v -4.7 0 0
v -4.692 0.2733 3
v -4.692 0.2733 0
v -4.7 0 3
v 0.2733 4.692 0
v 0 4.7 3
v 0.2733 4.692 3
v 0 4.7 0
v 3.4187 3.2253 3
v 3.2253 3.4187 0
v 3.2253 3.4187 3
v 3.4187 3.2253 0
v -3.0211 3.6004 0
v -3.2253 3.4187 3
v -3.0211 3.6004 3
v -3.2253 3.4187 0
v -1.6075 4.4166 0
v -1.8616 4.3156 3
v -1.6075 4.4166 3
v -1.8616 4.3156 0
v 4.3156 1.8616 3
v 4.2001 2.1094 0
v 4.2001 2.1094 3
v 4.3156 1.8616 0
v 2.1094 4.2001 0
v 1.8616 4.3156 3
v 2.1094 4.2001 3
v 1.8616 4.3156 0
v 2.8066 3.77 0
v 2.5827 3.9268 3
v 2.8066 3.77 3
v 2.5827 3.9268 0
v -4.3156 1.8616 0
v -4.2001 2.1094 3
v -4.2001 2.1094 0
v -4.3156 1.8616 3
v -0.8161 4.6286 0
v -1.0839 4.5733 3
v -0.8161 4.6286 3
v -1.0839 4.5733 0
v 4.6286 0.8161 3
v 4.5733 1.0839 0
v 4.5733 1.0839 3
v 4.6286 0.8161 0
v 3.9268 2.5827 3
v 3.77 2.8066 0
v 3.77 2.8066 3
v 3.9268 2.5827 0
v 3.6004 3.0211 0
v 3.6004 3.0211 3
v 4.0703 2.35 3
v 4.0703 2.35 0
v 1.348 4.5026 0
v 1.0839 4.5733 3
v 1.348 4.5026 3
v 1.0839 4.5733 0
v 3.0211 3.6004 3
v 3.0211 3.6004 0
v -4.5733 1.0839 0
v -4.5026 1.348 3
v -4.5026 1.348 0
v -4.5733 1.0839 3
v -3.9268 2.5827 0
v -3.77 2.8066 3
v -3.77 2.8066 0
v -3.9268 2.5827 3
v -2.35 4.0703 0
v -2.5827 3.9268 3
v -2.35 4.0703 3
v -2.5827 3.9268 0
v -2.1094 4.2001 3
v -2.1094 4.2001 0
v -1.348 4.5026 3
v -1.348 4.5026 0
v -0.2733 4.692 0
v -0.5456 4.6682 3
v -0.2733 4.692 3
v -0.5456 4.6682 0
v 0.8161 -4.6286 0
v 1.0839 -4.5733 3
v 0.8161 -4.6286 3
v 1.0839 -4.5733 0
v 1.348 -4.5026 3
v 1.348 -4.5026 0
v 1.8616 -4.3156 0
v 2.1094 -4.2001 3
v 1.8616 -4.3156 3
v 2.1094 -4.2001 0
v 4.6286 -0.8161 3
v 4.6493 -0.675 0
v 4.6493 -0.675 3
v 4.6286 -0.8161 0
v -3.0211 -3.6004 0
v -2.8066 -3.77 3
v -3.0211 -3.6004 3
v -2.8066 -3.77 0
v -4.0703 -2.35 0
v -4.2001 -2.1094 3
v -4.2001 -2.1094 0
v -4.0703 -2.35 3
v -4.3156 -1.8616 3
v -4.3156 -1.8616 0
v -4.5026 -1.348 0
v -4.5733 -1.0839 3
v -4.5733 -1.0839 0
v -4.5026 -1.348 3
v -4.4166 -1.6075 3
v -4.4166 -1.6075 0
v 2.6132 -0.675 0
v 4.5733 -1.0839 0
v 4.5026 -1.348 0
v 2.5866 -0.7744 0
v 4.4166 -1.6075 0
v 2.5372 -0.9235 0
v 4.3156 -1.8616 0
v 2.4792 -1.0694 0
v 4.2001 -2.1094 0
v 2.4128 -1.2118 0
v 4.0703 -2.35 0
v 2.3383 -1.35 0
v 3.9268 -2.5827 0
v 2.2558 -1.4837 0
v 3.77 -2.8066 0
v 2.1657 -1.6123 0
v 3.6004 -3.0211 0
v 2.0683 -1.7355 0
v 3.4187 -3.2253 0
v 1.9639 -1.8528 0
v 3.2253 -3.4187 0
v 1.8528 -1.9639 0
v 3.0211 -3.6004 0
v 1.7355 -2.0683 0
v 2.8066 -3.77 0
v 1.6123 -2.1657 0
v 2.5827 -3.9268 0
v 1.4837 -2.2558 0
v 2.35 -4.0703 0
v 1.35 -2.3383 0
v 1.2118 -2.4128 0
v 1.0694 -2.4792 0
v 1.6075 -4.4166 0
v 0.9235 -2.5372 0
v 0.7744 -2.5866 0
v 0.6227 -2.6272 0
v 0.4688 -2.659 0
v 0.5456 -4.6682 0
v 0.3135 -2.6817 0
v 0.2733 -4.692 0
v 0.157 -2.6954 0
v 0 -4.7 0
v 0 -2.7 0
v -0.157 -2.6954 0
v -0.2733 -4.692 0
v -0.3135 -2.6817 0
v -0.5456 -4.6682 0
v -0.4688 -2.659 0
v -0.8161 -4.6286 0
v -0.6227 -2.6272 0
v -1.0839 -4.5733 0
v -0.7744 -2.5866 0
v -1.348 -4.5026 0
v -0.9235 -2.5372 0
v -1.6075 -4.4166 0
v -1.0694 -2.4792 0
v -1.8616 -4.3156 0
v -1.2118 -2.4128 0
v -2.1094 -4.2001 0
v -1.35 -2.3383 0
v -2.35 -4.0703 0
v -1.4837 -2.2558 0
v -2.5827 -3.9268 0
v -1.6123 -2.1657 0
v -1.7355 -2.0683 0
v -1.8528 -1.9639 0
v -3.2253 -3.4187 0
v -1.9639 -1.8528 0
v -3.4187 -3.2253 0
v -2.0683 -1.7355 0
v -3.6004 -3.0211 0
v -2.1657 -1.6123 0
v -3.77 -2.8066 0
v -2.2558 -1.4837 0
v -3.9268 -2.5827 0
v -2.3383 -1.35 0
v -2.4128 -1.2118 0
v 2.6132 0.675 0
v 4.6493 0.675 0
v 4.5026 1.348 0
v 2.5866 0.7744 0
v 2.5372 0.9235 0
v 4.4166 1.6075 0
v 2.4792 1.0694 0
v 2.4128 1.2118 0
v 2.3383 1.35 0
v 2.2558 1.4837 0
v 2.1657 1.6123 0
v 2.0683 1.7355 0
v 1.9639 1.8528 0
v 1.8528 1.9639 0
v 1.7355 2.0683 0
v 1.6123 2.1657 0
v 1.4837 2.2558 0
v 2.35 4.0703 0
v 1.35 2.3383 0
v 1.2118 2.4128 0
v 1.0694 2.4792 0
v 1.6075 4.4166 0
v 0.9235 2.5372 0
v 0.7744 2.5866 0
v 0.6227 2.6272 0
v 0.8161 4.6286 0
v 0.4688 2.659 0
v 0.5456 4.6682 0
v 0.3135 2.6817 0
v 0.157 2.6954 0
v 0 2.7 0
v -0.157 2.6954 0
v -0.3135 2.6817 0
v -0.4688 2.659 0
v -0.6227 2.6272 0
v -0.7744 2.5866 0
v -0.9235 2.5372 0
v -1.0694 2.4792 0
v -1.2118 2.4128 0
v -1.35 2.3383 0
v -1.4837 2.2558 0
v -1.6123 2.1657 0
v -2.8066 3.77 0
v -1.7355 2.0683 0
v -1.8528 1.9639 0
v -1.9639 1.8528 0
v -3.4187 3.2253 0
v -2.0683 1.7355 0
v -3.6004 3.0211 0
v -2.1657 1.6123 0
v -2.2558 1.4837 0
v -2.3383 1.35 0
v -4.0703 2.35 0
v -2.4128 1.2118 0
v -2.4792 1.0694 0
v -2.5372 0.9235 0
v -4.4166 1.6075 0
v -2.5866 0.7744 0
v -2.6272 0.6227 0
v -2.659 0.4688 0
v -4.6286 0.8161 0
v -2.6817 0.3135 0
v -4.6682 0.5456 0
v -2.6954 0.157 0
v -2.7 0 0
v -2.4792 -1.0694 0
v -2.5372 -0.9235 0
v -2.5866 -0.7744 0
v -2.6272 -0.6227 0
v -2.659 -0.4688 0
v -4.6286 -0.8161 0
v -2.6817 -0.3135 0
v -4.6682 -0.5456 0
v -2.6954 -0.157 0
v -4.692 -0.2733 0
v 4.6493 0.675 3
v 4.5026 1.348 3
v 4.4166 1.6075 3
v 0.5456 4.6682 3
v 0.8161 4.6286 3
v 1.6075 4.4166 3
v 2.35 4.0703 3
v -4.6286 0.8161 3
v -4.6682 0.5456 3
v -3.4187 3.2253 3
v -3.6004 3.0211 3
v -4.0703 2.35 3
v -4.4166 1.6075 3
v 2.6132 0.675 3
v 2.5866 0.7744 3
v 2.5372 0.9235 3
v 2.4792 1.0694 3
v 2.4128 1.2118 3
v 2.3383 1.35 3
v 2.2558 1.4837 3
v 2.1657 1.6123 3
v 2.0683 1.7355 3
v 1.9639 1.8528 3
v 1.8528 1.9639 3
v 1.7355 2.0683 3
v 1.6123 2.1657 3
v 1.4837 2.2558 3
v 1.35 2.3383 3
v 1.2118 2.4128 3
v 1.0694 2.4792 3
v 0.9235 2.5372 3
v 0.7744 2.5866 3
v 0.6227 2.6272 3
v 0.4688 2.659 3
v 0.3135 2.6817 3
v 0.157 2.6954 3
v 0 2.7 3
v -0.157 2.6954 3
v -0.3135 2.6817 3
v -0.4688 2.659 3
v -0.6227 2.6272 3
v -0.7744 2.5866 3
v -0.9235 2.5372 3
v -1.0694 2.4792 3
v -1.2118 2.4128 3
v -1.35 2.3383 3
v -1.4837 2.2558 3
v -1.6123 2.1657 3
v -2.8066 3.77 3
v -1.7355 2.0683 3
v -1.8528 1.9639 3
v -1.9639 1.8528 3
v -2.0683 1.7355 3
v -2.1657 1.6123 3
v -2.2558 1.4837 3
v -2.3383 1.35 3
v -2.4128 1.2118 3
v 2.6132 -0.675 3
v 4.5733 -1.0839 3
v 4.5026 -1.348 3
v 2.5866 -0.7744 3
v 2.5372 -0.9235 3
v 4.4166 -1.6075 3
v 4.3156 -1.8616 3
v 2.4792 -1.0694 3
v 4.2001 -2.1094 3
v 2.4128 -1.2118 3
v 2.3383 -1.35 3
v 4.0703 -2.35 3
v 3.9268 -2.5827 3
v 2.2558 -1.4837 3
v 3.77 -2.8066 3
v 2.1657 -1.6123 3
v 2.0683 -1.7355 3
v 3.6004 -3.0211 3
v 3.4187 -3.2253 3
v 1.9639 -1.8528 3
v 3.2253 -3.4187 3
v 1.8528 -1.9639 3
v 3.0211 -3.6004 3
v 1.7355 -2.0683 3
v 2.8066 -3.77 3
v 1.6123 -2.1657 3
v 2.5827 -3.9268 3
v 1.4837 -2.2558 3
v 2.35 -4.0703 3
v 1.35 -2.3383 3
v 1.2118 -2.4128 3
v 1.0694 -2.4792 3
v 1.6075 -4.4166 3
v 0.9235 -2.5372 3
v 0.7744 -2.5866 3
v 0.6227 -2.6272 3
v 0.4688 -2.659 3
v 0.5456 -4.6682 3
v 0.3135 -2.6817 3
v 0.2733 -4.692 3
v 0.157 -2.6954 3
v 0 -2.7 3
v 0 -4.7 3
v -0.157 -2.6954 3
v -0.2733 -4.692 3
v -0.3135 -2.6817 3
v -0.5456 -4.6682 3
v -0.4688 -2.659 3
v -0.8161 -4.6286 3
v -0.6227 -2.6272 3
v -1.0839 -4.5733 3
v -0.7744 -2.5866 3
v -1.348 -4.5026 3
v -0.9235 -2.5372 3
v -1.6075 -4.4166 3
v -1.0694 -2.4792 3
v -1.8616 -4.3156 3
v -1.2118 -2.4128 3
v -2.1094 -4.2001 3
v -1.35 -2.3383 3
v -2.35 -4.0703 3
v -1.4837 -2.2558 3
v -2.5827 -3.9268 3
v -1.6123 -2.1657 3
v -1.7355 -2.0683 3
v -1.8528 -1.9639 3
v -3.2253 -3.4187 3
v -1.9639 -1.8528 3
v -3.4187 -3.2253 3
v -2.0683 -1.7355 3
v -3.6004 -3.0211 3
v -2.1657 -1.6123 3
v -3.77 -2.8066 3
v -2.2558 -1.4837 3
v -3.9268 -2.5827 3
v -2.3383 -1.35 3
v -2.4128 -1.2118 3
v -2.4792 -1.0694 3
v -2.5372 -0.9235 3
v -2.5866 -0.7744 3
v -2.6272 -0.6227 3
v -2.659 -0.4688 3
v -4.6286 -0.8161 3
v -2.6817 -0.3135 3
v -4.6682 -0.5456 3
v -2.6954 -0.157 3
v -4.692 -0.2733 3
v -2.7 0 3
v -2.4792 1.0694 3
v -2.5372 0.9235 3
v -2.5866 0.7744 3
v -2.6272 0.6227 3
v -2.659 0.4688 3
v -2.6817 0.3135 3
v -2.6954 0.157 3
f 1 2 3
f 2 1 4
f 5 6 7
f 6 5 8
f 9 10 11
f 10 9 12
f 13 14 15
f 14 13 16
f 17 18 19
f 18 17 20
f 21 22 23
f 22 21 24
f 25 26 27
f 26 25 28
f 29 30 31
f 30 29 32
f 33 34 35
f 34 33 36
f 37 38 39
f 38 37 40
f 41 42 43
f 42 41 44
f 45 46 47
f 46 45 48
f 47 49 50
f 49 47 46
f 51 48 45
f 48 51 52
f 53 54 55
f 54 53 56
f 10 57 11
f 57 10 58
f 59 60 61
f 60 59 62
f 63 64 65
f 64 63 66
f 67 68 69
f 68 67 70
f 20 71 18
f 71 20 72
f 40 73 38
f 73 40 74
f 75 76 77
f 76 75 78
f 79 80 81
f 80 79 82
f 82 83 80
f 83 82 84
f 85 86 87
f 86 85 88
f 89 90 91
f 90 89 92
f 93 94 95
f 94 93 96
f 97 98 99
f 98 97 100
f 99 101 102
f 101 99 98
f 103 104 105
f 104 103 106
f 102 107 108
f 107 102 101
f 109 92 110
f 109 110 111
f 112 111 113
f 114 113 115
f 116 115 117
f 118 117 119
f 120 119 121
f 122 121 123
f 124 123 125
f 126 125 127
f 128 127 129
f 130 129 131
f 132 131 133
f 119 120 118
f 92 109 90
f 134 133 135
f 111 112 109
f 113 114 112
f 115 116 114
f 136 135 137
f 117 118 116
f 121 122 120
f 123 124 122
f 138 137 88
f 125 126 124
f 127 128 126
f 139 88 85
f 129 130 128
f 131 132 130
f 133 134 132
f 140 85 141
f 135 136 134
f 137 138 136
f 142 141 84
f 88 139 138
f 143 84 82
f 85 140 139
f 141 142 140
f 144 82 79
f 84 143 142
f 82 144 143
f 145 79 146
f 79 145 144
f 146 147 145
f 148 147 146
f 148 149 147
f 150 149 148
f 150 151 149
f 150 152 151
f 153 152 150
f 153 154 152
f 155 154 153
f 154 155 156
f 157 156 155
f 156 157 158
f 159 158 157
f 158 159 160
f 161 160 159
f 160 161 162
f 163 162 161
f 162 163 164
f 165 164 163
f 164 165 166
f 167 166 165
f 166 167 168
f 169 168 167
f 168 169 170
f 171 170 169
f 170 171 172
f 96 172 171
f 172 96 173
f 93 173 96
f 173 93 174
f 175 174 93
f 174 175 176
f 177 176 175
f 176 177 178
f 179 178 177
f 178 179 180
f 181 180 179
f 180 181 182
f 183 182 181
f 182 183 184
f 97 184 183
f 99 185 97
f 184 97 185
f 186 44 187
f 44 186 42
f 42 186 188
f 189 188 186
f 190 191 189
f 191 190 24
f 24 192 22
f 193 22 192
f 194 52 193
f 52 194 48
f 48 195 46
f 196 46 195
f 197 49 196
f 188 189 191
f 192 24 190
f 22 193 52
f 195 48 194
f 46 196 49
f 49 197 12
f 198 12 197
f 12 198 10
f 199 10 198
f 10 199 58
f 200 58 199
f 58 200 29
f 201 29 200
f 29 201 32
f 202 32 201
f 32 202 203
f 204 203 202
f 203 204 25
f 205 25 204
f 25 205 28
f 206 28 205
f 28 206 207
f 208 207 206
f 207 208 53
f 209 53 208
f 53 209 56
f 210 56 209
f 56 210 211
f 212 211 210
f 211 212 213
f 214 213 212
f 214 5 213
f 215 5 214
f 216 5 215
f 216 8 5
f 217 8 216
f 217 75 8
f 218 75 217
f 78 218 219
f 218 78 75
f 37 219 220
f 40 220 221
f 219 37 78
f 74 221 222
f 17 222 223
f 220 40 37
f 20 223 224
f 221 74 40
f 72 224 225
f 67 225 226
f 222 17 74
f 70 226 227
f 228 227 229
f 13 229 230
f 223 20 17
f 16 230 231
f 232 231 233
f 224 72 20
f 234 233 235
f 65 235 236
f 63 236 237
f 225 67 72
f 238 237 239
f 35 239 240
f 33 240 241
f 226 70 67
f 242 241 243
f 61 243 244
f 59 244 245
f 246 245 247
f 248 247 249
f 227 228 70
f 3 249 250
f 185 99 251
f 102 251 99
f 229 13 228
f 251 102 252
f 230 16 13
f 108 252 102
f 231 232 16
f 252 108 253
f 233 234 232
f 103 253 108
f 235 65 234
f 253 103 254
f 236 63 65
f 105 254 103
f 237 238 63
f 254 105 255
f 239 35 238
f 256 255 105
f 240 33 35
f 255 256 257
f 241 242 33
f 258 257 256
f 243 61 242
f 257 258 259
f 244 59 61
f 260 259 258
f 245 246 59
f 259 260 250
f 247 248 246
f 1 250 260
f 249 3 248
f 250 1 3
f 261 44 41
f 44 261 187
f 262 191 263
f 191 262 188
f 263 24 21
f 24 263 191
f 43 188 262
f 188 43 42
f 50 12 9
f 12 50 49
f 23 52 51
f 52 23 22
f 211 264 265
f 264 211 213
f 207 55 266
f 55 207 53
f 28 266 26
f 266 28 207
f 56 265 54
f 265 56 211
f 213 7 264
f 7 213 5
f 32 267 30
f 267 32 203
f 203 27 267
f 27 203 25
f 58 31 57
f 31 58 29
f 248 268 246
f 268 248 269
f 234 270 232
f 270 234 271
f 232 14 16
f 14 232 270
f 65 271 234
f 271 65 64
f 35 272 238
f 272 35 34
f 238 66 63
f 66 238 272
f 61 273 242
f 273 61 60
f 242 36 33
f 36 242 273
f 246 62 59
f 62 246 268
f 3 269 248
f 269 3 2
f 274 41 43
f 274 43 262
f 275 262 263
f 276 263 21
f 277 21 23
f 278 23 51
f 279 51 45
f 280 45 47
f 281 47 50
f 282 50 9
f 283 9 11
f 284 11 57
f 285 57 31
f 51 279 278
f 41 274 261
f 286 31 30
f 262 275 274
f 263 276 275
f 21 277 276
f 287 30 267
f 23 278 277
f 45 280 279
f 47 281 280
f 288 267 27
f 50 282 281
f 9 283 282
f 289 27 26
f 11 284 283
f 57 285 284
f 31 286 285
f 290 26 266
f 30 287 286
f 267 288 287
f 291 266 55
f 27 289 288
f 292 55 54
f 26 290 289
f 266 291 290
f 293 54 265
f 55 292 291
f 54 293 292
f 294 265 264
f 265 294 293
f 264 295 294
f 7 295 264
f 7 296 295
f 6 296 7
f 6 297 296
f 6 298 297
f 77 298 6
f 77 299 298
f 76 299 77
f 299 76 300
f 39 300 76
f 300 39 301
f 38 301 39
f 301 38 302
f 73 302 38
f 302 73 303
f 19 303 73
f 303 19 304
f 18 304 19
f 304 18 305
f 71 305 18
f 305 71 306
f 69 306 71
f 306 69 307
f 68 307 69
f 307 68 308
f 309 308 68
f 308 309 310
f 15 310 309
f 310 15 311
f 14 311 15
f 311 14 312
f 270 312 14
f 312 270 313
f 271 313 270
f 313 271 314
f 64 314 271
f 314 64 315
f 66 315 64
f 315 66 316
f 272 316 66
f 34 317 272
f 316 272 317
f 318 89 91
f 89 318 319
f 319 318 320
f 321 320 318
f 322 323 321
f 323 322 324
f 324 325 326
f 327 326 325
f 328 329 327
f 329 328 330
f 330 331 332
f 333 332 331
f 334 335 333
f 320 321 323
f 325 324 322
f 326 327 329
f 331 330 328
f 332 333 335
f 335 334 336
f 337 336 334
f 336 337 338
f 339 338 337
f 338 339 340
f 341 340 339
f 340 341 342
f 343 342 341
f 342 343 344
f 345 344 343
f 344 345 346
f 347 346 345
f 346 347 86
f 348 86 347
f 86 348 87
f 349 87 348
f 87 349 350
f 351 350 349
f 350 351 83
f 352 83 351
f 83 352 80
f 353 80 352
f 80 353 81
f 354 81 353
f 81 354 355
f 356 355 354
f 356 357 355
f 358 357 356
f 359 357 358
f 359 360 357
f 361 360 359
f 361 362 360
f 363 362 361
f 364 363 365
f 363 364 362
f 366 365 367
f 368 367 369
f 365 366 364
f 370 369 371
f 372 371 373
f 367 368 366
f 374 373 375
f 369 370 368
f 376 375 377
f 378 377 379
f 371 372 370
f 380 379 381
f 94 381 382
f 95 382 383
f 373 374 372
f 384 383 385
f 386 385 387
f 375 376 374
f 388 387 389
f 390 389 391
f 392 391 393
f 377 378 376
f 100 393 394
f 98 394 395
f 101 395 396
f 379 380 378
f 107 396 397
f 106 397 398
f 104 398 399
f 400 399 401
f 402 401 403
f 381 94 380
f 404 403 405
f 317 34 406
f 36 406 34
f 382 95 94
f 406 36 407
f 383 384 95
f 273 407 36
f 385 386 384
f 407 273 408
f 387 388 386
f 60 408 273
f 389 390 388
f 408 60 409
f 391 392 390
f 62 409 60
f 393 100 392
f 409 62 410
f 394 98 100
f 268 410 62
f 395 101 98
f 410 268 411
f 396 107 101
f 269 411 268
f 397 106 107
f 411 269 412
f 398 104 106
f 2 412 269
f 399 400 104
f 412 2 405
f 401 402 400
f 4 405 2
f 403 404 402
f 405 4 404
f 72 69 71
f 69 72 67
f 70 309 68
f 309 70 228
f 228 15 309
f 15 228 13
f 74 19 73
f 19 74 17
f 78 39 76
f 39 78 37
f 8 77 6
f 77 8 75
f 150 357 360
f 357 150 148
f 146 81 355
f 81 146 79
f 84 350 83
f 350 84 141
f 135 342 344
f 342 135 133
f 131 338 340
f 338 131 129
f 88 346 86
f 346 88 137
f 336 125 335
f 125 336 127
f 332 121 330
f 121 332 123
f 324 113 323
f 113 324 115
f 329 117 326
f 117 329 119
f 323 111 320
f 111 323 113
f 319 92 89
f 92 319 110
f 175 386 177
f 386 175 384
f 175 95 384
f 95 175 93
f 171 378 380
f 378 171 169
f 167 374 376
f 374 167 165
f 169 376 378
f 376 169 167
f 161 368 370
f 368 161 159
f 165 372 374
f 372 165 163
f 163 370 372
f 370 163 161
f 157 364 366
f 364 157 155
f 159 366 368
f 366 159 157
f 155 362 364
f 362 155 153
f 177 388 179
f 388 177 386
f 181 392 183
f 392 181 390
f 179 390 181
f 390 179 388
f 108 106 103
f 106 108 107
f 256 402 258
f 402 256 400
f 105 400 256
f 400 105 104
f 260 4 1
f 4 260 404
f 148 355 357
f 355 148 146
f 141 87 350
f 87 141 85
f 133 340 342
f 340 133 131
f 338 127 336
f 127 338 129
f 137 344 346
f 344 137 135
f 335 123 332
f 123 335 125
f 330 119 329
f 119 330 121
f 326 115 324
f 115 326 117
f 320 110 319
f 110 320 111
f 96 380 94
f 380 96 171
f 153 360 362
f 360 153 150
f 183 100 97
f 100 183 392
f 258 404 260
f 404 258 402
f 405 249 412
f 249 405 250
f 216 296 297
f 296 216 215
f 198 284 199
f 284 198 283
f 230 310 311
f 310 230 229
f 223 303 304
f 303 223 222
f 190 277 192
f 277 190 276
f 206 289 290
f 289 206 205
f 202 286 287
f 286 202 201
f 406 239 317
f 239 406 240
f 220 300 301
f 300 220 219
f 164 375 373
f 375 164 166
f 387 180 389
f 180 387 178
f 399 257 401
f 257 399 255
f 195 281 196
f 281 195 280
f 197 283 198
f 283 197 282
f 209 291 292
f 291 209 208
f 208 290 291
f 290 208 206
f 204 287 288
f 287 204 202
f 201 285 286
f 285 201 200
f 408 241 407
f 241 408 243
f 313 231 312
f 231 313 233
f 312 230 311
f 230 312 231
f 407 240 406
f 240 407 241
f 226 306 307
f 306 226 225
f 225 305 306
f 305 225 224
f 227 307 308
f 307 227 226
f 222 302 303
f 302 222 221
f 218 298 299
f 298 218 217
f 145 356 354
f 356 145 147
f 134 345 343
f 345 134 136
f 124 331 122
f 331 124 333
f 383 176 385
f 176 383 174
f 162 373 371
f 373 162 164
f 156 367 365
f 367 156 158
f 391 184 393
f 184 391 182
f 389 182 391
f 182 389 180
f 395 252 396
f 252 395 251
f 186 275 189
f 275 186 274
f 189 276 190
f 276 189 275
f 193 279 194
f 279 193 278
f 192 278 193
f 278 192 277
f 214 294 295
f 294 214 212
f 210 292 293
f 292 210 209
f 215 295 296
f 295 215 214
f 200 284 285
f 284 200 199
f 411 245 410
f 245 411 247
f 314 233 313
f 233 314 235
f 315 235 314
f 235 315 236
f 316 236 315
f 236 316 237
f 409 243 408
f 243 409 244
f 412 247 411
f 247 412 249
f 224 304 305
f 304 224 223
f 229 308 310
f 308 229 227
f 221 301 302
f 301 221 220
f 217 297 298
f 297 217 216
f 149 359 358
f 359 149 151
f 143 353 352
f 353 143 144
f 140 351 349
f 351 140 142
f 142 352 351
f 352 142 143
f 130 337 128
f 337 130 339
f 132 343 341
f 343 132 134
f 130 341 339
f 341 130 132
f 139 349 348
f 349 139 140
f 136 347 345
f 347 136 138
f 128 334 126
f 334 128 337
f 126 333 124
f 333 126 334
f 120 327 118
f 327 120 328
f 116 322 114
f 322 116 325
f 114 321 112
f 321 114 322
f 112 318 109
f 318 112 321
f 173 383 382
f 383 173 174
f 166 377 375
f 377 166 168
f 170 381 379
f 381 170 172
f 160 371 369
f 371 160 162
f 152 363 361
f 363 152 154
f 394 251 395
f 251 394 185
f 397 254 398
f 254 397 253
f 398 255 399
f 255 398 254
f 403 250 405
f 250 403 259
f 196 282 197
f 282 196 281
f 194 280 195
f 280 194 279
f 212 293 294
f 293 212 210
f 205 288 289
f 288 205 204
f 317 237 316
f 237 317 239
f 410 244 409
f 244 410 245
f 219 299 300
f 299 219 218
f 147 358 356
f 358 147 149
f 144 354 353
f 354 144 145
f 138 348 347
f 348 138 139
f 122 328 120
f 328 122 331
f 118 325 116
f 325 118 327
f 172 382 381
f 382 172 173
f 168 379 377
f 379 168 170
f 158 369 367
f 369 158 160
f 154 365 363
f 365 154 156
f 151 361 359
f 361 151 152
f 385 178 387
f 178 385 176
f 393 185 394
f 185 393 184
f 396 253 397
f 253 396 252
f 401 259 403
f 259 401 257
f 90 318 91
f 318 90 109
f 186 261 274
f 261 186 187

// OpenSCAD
//General
$fn=108;
tolerance = 0.4;

r_bar = (5+tolerance)/2; // Actual bar diameter is 3.7-3.8mm
h_bar = 3;

wall = 2;

r_sleeve = r_bar + wall;
h_sleeve = h_bar;

// rotate([0,90,0])
difference(){
  cylinder(r=r_sleeve, h=h_sleeve);
  cylinder(r=r_bar, h=h_bar);
  translate([0,-r_bar/4,0])
  cube([r_bar*3, r_bar/2, h_bar]);
}
